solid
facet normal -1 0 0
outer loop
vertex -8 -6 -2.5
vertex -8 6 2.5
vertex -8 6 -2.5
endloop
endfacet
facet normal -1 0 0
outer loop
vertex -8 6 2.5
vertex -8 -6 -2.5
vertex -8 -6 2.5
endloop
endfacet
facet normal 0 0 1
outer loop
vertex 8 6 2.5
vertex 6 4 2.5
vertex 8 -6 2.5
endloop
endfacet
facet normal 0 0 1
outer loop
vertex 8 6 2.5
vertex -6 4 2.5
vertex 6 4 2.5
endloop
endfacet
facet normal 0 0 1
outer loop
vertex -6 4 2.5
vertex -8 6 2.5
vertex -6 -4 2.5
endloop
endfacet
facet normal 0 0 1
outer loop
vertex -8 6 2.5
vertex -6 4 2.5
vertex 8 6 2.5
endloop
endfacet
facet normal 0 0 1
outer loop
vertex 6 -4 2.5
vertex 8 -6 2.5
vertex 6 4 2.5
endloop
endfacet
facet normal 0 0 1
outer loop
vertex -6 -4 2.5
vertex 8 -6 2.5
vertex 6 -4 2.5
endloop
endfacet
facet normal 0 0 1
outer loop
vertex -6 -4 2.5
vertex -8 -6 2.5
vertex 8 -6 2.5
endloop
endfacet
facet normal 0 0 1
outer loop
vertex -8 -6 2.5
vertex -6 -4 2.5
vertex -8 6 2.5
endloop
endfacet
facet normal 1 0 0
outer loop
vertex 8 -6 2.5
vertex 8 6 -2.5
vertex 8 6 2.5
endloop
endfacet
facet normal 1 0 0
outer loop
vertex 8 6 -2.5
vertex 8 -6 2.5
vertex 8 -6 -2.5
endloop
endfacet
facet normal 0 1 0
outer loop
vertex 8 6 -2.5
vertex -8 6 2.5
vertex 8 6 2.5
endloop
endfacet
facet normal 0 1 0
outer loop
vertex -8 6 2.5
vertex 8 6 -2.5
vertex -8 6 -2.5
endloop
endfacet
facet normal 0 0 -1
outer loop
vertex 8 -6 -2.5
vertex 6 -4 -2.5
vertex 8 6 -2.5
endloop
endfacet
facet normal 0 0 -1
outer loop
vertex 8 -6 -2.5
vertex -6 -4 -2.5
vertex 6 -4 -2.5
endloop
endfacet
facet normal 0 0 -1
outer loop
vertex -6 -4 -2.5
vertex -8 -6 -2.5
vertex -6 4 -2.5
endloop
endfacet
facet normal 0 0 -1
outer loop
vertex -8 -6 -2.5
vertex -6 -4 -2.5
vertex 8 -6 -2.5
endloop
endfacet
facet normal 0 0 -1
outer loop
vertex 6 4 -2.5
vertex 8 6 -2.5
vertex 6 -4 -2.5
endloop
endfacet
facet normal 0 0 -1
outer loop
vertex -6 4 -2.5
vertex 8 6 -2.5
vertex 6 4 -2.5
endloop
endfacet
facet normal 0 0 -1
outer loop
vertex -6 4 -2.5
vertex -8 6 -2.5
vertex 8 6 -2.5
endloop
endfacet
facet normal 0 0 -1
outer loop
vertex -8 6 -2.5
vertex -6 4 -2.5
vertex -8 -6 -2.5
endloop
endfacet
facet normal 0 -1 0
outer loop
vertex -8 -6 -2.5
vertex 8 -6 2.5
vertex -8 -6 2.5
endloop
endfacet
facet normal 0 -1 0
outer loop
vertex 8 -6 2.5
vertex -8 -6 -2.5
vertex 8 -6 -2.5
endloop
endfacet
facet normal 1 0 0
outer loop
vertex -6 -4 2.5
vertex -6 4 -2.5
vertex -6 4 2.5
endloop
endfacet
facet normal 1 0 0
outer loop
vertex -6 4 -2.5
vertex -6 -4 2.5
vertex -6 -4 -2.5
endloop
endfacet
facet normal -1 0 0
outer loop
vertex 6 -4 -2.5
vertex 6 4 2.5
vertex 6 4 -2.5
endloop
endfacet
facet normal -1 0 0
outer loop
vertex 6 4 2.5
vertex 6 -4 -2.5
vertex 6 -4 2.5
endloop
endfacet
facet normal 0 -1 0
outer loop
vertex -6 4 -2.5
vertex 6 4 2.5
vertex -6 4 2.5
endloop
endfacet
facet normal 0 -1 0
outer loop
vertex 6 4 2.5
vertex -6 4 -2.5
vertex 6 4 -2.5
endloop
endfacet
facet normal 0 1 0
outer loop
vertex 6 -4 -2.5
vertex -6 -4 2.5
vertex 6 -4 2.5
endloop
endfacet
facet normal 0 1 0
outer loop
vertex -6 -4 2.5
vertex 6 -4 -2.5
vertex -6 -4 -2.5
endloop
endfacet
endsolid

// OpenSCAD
width = 16;
height = 12;
depth = 5;
strength = 2;

difference(){
    cube([width, height, depth], center=true);
    cube([width - strength*2, height - strength*2, depth*2], center=true);
}
